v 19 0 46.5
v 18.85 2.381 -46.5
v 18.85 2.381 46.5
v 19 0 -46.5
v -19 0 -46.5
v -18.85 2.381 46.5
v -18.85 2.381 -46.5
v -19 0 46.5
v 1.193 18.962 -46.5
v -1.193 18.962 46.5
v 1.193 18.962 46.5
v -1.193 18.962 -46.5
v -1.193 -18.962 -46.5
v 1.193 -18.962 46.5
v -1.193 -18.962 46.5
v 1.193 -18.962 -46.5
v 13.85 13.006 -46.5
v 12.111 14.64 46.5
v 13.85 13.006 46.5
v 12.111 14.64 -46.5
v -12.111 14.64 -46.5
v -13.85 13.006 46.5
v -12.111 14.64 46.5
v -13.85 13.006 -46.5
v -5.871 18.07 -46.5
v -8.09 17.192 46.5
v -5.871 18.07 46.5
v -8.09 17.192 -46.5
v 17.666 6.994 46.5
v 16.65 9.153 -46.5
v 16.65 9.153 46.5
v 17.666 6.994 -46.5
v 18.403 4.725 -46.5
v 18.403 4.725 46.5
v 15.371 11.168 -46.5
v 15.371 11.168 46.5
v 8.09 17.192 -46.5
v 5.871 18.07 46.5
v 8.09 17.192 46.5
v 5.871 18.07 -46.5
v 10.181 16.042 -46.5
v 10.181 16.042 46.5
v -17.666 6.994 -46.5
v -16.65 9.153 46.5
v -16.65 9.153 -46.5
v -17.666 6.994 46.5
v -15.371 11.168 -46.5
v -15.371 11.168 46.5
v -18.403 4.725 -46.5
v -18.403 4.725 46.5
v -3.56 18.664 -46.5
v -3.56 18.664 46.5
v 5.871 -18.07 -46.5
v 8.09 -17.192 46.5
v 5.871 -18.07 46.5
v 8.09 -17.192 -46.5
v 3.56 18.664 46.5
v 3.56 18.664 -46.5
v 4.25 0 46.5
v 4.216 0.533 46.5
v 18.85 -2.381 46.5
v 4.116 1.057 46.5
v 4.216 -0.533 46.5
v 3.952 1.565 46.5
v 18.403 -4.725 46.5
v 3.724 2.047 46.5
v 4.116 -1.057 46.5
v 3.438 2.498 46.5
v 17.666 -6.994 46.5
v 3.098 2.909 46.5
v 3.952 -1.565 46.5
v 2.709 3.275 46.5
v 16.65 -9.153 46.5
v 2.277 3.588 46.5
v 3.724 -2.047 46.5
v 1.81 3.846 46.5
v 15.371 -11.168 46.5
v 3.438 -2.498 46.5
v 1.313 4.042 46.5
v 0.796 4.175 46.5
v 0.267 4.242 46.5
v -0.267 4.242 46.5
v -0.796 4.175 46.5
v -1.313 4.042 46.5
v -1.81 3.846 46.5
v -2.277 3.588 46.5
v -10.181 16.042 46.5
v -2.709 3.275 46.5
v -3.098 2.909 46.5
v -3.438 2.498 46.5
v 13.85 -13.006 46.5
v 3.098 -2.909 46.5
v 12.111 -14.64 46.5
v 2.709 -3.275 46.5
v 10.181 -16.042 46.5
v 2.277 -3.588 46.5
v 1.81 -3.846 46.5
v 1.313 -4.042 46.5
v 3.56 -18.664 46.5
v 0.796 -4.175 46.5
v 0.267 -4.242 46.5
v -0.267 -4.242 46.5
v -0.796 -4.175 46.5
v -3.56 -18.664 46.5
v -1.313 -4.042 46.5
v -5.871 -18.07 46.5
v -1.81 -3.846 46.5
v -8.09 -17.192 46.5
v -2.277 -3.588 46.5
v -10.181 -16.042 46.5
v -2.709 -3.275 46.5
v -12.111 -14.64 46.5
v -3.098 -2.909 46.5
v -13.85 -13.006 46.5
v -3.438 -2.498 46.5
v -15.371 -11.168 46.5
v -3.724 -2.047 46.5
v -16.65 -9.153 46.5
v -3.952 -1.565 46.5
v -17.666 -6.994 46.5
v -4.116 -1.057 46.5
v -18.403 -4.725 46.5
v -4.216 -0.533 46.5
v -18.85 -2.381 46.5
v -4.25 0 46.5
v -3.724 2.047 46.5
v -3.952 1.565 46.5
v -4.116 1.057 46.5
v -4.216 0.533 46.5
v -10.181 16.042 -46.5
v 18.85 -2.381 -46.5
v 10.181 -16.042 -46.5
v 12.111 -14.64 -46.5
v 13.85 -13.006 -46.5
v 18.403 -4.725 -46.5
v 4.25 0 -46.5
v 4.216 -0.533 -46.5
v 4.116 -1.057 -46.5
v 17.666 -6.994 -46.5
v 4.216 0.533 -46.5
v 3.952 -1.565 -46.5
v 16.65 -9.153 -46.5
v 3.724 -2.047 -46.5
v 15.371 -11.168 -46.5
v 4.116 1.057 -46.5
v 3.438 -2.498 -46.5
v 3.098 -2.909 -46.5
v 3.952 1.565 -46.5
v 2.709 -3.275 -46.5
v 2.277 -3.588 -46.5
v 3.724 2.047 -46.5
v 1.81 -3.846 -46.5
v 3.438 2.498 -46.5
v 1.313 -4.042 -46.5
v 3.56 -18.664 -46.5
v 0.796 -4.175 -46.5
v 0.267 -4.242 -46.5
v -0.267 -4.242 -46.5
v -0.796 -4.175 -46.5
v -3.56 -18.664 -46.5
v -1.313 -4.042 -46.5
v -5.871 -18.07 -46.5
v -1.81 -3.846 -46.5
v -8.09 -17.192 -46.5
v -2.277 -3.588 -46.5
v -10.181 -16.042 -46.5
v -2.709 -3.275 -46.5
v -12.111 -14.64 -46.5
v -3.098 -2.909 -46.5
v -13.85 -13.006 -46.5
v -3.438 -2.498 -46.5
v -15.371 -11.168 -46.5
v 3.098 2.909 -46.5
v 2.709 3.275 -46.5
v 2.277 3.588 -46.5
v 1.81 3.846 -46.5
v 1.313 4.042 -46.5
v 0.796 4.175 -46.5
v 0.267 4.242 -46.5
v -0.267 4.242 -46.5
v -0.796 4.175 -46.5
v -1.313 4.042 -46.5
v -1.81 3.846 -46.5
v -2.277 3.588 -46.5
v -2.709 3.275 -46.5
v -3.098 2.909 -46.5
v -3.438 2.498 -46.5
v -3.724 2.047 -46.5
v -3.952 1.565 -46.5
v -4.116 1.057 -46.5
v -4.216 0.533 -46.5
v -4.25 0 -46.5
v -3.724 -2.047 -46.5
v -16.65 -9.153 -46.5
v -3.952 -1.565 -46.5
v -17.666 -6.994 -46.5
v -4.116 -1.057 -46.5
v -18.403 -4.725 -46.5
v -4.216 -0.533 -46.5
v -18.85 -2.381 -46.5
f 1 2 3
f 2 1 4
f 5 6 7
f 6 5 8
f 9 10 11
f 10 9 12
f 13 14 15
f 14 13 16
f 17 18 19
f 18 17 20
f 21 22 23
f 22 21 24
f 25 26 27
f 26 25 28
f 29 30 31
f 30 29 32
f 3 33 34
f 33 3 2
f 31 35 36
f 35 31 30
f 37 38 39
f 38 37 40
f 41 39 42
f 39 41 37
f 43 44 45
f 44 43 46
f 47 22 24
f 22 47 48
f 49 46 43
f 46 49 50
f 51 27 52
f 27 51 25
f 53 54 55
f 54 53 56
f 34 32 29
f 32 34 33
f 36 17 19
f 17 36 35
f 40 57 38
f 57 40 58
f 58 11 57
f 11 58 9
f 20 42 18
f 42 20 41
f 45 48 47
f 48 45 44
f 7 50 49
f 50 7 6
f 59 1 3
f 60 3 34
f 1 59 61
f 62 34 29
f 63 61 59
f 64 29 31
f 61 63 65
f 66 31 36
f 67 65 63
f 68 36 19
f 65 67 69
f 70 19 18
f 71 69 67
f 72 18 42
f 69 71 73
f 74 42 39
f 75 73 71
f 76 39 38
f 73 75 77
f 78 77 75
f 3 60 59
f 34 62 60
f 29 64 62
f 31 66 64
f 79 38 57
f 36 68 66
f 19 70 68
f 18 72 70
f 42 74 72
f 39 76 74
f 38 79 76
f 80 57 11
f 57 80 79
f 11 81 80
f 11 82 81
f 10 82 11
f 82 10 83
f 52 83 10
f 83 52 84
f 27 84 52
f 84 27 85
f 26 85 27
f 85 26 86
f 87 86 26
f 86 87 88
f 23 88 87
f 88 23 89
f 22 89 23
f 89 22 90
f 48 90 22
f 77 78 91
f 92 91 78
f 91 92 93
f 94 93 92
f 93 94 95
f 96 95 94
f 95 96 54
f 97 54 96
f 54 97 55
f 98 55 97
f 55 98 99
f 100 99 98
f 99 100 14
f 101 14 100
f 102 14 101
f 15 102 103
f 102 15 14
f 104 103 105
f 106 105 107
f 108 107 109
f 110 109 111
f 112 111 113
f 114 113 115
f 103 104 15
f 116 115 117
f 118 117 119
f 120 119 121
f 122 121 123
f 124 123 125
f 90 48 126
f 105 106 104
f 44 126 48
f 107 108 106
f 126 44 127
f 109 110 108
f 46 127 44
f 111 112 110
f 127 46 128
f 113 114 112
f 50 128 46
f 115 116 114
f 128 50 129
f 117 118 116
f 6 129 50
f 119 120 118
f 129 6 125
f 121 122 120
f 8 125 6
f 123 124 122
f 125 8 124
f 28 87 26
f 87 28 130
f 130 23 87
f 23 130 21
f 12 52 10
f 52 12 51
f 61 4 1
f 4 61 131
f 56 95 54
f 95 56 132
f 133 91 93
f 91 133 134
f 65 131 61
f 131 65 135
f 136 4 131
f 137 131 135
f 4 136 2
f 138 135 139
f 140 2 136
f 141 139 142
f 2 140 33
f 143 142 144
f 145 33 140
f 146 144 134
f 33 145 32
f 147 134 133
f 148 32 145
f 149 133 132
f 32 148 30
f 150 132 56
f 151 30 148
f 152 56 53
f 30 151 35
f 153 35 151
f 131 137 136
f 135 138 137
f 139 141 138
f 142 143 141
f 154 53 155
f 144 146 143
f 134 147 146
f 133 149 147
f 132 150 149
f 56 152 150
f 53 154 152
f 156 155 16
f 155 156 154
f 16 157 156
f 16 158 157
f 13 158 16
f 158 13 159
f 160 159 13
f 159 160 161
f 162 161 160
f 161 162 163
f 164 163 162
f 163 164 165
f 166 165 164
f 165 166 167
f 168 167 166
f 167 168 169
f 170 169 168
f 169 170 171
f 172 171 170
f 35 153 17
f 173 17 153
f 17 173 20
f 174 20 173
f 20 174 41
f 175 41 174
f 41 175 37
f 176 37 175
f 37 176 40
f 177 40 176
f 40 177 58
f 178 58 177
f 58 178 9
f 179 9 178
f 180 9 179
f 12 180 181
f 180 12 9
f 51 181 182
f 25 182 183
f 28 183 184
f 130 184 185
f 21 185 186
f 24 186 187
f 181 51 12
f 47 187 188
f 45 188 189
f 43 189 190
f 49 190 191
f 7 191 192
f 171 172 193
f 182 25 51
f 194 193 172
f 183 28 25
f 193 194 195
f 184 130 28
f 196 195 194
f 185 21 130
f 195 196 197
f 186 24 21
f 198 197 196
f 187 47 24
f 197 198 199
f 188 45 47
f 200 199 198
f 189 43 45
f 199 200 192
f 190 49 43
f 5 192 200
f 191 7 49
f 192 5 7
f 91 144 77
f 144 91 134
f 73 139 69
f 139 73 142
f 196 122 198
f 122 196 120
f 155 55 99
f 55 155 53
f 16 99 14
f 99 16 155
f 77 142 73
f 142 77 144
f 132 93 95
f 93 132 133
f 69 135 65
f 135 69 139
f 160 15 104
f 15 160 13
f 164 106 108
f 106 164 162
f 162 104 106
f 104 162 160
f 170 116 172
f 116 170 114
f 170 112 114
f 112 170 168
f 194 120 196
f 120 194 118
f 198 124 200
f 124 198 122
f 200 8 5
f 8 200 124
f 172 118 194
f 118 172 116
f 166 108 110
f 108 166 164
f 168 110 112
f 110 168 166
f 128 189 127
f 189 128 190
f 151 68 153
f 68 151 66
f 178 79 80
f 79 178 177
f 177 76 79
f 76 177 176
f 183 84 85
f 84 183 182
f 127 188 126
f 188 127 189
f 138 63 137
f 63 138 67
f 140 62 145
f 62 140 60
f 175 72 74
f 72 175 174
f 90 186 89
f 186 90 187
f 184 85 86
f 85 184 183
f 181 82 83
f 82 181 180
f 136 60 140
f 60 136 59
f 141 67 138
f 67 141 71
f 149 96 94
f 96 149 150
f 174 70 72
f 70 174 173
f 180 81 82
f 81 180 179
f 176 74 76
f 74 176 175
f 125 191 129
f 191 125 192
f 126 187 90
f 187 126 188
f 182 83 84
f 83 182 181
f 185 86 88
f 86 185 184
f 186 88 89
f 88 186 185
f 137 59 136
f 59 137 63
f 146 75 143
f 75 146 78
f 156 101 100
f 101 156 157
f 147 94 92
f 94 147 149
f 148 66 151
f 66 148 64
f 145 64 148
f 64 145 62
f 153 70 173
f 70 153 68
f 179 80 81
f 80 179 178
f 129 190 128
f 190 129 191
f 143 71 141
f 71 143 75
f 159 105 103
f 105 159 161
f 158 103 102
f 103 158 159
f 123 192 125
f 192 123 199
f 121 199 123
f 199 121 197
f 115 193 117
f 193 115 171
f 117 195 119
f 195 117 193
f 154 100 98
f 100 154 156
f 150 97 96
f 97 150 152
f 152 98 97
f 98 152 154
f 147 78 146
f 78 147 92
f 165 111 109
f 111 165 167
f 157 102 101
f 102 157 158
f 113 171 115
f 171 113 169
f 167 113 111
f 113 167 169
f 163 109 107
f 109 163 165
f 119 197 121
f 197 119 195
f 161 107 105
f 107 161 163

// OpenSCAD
$fn = 50;


difference() {
	union() {
		translate(v = [0, 0, -46.5000000000]) {
			cylinder(h = 93, r = 19.0000000000);
		}
	}
	union() {
		translate(v = [0, 0, -100.0000000000]) {
			cylinder(h = 200, r = 4.2500000000);
		}
	}
}
